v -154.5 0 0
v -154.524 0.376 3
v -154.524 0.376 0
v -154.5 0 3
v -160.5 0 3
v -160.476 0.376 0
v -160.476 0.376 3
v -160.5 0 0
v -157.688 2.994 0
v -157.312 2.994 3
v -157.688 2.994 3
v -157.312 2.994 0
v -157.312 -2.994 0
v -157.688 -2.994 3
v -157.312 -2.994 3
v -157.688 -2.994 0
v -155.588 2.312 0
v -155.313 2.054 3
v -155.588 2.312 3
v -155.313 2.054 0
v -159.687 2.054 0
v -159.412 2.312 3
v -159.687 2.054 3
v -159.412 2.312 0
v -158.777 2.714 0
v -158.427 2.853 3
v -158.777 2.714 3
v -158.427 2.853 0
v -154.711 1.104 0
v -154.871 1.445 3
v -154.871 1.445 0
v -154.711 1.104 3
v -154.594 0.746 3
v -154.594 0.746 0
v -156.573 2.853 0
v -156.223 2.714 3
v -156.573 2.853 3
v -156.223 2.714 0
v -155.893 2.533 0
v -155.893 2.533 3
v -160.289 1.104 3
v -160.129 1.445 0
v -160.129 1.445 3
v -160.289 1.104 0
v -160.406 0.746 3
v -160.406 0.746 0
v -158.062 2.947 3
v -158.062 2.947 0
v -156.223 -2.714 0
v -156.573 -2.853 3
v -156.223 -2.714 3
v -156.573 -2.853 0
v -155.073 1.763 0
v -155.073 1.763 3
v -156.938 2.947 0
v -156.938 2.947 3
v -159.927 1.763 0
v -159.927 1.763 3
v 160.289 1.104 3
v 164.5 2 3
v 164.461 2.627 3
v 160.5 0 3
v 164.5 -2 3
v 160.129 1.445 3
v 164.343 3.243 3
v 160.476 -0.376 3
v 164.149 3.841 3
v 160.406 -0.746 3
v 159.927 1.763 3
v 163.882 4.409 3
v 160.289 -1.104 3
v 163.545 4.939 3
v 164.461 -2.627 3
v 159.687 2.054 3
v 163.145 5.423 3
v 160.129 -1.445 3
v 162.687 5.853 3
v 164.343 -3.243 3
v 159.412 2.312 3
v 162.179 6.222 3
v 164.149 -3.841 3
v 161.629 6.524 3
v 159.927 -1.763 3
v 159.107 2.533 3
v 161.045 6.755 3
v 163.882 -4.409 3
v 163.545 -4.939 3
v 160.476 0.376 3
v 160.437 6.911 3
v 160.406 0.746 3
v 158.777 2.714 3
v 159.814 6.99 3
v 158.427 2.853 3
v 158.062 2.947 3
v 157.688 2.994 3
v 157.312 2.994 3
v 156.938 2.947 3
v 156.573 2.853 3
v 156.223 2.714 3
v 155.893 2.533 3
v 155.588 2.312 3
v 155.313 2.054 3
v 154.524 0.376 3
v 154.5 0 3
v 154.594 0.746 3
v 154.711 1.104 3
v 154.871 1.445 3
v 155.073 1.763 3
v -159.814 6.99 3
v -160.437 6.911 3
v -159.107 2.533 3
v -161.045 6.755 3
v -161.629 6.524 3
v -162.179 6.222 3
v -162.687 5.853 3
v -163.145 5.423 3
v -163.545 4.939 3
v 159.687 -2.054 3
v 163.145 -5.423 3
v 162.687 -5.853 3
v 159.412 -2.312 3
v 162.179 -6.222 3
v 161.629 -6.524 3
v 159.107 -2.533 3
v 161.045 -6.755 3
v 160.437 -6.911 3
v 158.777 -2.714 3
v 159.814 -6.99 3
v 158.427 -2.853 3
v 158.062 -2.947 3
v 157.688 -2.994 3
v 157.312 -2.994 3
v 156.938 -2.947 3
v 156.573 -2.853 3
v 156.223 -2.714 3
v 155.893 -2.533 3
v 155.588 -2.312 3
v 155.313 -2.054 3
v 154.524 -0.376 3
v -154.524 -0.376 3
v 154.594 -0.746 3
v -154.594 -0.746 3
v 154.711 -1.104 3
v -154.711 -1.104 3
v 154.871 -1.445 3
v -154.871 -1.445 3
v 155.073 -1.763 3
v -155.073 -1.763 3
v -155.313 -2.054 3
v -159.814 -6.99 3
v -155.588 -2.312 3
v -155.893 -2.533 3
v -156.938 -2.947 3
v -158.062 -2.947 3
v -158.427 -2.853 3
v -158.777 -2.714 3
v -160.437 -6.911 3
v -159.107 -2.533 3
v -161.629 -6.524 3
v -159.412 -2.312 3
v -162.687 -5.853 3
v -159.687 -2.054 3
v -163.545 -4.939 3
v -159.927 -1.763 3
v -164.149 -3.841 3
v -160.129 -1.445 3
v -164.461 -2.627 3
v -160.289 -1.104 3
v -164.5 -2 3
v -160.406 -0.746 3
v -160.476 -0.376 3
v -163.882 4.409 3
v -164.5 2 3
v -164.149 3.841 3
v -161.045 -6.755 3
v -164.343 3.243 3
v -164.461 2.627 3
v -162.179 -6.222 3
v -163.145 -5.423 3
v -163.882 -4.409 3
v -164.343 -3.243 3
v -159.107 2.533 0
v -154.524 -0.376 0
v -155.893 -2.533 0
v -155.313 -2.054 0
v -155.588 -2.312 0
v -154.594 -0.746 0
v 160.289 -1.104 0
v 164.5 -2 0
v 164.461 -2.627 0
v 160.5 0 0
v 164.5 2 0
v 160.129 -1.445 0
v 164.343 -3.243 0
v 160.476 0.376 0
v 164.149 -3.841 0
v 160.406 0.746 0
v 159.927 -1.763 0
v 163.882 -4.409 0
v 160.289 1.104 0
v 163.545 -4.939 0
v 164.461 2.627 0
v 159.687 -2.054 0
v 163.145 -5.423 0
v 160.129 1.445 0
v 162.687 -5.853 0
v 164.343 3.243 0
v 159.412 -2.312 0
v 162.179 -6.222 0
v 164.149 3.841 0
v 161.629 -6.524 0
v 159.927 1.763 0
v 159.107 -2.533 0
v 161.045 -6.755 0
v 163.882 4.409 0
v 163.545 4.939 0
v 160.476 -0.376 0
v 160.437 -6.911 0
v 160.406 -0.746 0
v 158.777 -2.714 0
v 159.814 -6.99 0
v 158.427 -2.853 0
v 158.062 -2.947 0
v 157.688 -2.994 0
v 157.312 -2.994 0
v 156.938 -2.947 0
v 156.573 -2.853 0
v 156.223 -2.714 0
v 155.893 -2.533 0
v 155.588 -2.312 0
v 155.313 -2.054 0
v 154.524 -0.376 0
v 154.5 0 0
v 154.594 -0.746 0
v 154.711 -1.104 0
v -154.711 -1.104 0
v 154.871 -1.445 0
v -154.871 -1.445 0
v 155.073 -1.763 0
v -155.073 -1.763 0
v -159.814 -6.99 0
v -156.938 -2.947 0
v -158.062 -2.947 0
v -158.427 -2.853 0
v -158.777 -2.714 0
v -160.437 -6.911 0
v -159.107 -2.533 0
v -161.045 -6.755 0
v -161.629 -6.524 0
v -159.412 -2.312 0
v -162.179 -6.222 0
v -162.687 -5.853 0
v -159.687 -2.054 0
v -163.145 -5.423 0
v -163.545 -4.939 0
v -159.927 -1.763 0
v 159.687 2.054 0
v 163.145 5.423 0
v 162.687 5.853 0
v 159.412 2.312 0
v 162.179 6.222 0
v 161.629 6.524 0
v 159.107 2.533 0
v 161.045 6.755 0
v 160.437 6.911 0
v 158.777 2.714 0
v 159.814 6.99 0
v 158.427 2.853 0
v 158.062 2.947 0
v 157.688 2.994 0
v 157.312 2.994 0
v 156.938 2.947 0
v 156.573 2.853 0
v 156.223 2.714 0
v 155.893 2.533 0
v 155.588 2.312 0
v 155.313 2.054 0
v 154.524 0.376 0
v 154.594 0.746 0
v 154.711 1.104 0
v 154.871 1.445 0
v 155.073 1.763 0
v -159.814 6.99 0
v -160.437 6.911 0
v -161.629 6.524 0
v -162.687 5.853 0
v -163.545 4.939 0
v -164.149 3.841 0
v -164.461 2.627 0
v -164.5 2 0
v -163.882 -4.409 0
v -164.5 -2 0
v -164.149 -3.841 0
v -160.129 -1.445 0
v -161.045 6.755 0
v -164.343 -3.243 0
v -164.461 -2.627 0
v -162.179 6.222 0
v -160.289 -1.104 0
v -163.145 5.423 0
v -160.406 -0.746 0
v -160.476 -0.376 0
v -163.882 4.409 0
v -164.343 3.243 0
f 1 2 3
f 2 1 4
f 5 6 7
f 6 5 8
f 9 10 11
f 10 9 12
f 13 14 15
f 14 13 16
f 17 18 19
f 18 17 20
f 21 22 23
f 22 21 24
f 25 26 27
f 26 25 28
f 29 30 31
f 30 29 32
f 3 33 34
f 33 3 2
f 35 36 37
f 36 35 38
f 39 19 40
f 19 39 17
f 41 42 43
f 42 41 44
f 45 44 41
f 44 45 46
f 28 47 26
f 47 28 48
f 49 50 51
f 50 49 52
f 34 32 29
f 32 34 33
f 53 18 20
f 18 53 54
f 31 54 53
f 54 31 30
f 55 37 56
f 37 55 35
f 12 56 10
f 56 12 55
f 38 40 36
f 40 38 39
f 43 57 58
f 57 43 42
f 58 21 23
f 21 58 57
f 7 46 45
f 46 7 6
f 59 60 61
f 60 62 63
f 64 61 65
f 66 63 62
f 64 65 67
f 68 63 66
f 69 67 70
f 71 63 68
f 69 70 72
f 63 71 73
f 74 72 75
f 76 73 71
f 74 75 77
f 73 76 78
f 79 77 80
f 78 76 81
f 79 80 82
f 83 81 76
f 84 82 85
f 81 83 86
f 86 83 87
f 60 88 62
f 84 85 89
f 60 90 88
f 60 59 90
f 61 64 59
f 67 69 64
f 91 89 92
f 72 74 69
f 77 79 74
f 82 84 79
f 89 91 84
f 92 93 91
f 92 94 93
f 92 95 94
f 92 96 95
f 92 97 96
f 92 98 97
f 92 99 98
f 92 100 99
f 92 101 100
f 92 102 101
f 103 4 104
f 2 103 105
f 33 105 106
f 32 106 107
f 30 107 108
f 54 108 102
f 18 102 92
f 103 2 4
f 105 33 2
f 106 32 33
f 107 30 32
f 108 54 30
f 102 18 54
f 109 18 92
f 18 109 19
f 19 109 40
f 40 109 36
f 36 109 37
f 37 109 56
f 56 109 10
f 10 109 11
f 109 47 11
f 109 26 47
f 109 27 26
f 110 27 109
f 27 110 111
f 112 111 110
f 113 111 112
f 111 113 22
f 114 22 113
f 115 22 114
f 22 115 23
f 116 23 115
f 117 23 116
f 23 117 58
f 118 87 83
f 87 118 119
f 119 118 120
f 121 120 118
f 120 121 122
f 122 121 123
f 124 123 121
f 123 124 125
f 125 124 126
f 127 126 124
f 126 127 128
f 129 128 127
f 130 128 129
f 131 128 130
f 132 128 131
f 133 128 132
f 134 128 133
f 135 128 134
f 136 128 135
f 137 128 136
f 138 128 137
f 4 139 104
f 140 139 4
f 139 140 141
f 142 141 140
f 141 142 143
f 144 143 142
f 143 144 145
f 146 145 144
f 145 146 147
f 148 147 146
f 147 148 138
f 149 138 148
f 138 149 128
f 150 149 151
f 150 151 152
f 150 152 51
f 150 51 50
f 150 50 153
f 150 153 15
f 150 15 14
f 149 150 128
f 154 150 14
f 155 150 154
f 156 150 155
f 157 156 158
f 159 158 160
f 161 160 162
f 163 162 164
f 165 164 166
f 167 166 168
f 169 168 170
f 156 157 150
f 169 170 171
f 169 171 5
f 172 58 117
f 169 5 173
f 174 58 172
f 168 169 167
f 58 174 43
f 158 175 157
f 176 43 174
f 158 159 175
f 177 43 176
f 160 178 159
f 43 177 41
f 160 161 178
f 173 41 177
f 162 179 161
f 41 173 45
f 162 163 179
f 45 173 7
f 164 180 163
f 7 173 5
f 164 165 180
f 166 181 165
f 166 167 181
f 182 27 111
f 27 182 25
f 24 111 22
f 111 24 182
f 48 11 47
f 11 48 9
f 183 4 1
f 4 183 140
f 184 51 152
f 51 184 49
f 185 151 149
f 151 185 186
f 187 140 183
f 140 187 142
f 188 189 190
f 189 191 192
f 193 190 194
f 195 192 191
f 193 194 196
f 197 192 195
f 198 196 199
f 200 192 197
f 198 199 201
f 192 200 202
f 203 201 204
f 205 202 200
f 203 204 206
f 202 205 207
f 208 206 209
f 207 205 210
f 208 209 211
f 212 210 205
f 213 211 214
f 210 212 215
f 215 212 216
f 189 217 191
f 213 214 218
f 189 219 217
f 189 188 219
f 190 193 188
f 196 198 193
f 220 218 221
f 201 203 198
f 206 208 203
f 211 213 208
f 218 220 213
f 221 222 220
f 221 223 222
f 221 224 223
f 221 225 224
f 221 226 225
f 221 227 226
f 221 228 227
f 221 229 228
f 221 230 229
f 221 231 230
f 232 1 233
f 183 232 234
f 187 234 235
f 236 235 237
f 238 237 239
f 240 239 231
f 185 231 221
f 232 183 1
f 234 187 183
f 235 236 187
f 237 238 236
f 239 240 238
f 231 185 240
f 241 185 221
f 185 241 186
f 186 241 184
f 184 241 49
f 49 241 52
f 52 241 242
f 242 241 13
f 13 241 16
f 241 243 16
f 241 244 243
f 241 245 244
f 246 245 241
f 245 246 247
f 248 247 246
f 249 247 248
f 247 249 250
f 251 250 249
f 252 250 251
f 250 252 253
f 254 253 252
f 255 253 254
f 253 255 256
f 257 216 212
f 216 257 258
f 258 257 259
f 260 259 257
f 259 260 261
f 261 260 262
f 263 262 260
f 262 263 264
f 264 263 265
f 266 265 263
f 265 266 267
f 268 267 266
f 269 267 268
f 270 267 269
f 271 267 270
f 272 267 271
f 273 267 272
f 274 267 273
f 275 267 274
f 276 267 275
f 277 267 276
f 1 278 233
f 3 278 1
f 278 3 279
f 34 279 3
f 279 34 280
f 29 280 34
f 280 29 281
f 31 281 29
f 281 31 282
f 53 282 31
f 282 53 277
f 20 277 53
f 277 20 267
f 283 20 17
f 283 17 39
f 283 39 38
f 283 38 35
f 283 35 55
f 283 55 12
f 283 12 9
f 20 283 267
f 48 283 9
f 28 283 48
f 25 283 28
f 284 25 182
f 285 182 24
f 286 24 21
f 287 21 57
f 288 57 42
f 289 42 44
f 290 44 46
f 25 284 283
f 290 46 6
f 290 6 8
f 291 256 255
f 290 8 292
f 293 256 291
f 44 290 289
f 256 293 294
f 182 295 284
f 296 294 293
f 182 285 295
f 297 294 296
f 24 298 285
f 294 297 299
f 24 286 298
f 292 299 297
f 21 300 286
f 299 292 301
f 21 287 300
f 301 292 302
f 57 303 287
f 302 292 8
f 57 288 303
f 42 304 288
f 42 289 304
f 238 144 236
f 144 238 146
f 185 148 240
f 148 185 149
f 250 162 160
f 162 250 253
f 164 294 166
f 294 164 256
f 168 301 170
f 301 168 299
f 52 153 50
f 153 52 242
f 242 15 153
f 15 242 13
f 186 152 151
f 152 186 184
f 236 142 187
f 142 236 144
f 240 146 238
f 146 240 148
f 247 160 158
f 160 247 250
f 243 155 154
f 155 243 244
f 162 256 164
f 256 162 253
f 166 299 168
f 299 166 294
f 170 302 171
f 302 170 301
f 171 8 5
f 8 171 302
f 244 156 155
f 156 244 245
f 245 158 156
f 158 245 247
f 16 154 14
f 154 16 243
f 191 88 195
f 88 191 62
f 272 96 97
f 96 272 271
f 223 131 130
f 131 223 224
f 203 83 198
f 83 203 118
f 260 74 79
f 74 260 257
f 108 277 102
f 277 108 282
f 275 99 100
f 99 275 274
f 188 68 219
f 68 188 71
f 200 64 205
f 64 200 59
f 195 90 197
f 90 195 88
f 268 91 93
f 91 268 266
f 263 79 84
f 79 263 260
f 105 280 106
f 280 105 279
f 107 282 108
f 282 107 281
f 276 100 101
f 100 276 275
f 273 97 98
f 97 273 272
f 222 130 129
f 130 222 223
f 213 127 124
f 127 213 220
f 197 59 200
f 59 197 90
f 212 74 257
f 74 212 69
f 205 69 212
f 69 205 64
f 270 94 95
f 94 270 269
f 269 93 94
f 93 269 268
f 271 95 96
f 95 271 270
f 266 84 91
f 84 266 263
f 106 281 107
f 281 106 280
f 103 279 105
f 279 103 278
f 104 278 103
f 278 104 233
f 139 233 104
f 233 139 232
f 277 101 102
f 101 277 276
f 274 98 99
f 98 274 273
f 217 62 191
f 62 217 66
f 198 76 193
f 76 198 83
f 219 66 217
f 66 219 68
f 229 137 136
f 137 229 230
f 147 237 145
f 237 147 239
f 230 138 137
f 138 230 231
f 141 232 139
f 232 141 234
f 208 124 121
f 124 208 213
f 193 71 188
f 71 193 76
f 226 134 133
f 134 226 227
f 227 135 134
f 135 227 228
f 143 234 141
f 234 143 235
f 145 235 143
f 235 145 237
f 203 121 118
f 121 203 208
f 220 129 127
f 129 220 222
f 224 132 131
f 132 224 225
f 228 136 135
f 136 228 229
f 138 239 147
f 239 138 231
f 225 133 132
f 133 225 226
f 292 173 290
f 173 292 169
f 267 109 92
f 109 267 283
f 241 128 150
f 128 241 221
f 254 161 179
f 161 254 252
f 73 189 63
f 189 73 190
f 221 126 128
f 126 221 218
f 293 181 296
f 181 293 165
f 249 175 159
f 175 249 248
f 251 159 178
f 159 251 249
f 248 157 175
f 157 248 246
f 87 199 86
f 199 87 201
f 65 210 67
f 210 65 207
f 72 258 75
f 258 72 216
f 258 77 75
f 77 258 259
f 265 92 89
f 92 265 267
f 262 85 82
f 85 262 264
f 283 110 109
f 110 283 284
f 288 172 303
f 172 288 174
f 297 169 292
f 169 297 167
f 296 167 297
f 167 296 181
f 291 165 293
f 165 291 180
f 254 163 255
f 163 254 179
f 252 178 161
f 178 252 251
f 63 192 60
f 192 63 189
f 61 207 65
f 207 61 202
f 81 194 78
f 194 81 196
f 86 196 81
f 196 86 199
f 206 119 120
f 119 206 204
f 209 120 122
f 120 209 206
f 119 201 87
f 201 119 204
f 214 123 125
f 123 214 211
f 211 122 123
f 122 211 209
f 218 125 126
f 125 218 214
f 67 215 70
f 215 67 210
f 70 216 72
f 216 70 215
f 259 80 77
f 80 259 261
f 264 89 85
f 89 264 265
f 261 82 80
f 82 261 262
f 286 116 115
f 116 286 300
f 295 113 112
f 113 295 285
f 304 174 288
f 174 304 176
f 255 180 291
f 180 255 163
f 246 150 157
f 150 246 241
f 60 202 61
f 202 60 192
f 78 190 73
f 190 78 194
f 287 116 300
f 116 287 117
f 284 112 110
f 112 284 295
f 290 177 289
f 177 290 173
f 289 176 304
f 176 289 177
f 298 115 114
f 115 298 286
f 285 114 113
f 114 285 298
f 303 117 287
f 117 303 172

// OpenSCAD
$fn = 50;


difference() {
	union() {
		hull() {
			translate(v = [-159.5000000000, 2.0000000000, 0]) {
				cylinder(h = 3, r = 5);
			}
			translate(v = [159.5000000000, 2.0000000000, 0]) {
				cylinder(h = 3, r = 5);
			}
			translate(v = [-159.5000000000, -2.0000000000, 0]) {
				cylinder(h = 3, r = 5);
			}
			translate(v = [159.5000000000, -2.0000000000, 0]) {
				cylinder(h = 3, r = 5);
			}
		}
	}
	union() {
		translate(v = [-157.5000000000, 0.0000000000, 0]) {
			cylinder(h = 3, r = 3.0000000000);
		}
		translate(v = [157.5000000000, 0.0000000000, 0]) {
			cylinder(h = 3, r = 3.0000000000);
		}
		translate(v = [-157.5000000000, 0.0000000000, 0]) {
			cylinder(h = 3, r = 1.5000000000);
		}
		translate(v = [157.5000000000, 0.0000000000, 0]) {
			cylinder(h = 3, r = 1.5000000000);
		}
		translate(v = [-157.5000000000, 0.0000000000, 0]) {
			cylinder(h = 3, r = 1.5000000000);
		}
		translate(v = [157.5000000000, 0.0000000000, 0]) {
			cylinder(h = 3, r = 1.5000000000);
		}
		translate(v = [-157.5000000000, 0.0000000000, 0]) {
			cylinder(h = 3, r = 1.5000000000);
		}
		translate(v = [157.5000000000, 0.0000000000, 0]) {
			cylinder(h = 3, r = 1.5000000000);
		}
	}
}
